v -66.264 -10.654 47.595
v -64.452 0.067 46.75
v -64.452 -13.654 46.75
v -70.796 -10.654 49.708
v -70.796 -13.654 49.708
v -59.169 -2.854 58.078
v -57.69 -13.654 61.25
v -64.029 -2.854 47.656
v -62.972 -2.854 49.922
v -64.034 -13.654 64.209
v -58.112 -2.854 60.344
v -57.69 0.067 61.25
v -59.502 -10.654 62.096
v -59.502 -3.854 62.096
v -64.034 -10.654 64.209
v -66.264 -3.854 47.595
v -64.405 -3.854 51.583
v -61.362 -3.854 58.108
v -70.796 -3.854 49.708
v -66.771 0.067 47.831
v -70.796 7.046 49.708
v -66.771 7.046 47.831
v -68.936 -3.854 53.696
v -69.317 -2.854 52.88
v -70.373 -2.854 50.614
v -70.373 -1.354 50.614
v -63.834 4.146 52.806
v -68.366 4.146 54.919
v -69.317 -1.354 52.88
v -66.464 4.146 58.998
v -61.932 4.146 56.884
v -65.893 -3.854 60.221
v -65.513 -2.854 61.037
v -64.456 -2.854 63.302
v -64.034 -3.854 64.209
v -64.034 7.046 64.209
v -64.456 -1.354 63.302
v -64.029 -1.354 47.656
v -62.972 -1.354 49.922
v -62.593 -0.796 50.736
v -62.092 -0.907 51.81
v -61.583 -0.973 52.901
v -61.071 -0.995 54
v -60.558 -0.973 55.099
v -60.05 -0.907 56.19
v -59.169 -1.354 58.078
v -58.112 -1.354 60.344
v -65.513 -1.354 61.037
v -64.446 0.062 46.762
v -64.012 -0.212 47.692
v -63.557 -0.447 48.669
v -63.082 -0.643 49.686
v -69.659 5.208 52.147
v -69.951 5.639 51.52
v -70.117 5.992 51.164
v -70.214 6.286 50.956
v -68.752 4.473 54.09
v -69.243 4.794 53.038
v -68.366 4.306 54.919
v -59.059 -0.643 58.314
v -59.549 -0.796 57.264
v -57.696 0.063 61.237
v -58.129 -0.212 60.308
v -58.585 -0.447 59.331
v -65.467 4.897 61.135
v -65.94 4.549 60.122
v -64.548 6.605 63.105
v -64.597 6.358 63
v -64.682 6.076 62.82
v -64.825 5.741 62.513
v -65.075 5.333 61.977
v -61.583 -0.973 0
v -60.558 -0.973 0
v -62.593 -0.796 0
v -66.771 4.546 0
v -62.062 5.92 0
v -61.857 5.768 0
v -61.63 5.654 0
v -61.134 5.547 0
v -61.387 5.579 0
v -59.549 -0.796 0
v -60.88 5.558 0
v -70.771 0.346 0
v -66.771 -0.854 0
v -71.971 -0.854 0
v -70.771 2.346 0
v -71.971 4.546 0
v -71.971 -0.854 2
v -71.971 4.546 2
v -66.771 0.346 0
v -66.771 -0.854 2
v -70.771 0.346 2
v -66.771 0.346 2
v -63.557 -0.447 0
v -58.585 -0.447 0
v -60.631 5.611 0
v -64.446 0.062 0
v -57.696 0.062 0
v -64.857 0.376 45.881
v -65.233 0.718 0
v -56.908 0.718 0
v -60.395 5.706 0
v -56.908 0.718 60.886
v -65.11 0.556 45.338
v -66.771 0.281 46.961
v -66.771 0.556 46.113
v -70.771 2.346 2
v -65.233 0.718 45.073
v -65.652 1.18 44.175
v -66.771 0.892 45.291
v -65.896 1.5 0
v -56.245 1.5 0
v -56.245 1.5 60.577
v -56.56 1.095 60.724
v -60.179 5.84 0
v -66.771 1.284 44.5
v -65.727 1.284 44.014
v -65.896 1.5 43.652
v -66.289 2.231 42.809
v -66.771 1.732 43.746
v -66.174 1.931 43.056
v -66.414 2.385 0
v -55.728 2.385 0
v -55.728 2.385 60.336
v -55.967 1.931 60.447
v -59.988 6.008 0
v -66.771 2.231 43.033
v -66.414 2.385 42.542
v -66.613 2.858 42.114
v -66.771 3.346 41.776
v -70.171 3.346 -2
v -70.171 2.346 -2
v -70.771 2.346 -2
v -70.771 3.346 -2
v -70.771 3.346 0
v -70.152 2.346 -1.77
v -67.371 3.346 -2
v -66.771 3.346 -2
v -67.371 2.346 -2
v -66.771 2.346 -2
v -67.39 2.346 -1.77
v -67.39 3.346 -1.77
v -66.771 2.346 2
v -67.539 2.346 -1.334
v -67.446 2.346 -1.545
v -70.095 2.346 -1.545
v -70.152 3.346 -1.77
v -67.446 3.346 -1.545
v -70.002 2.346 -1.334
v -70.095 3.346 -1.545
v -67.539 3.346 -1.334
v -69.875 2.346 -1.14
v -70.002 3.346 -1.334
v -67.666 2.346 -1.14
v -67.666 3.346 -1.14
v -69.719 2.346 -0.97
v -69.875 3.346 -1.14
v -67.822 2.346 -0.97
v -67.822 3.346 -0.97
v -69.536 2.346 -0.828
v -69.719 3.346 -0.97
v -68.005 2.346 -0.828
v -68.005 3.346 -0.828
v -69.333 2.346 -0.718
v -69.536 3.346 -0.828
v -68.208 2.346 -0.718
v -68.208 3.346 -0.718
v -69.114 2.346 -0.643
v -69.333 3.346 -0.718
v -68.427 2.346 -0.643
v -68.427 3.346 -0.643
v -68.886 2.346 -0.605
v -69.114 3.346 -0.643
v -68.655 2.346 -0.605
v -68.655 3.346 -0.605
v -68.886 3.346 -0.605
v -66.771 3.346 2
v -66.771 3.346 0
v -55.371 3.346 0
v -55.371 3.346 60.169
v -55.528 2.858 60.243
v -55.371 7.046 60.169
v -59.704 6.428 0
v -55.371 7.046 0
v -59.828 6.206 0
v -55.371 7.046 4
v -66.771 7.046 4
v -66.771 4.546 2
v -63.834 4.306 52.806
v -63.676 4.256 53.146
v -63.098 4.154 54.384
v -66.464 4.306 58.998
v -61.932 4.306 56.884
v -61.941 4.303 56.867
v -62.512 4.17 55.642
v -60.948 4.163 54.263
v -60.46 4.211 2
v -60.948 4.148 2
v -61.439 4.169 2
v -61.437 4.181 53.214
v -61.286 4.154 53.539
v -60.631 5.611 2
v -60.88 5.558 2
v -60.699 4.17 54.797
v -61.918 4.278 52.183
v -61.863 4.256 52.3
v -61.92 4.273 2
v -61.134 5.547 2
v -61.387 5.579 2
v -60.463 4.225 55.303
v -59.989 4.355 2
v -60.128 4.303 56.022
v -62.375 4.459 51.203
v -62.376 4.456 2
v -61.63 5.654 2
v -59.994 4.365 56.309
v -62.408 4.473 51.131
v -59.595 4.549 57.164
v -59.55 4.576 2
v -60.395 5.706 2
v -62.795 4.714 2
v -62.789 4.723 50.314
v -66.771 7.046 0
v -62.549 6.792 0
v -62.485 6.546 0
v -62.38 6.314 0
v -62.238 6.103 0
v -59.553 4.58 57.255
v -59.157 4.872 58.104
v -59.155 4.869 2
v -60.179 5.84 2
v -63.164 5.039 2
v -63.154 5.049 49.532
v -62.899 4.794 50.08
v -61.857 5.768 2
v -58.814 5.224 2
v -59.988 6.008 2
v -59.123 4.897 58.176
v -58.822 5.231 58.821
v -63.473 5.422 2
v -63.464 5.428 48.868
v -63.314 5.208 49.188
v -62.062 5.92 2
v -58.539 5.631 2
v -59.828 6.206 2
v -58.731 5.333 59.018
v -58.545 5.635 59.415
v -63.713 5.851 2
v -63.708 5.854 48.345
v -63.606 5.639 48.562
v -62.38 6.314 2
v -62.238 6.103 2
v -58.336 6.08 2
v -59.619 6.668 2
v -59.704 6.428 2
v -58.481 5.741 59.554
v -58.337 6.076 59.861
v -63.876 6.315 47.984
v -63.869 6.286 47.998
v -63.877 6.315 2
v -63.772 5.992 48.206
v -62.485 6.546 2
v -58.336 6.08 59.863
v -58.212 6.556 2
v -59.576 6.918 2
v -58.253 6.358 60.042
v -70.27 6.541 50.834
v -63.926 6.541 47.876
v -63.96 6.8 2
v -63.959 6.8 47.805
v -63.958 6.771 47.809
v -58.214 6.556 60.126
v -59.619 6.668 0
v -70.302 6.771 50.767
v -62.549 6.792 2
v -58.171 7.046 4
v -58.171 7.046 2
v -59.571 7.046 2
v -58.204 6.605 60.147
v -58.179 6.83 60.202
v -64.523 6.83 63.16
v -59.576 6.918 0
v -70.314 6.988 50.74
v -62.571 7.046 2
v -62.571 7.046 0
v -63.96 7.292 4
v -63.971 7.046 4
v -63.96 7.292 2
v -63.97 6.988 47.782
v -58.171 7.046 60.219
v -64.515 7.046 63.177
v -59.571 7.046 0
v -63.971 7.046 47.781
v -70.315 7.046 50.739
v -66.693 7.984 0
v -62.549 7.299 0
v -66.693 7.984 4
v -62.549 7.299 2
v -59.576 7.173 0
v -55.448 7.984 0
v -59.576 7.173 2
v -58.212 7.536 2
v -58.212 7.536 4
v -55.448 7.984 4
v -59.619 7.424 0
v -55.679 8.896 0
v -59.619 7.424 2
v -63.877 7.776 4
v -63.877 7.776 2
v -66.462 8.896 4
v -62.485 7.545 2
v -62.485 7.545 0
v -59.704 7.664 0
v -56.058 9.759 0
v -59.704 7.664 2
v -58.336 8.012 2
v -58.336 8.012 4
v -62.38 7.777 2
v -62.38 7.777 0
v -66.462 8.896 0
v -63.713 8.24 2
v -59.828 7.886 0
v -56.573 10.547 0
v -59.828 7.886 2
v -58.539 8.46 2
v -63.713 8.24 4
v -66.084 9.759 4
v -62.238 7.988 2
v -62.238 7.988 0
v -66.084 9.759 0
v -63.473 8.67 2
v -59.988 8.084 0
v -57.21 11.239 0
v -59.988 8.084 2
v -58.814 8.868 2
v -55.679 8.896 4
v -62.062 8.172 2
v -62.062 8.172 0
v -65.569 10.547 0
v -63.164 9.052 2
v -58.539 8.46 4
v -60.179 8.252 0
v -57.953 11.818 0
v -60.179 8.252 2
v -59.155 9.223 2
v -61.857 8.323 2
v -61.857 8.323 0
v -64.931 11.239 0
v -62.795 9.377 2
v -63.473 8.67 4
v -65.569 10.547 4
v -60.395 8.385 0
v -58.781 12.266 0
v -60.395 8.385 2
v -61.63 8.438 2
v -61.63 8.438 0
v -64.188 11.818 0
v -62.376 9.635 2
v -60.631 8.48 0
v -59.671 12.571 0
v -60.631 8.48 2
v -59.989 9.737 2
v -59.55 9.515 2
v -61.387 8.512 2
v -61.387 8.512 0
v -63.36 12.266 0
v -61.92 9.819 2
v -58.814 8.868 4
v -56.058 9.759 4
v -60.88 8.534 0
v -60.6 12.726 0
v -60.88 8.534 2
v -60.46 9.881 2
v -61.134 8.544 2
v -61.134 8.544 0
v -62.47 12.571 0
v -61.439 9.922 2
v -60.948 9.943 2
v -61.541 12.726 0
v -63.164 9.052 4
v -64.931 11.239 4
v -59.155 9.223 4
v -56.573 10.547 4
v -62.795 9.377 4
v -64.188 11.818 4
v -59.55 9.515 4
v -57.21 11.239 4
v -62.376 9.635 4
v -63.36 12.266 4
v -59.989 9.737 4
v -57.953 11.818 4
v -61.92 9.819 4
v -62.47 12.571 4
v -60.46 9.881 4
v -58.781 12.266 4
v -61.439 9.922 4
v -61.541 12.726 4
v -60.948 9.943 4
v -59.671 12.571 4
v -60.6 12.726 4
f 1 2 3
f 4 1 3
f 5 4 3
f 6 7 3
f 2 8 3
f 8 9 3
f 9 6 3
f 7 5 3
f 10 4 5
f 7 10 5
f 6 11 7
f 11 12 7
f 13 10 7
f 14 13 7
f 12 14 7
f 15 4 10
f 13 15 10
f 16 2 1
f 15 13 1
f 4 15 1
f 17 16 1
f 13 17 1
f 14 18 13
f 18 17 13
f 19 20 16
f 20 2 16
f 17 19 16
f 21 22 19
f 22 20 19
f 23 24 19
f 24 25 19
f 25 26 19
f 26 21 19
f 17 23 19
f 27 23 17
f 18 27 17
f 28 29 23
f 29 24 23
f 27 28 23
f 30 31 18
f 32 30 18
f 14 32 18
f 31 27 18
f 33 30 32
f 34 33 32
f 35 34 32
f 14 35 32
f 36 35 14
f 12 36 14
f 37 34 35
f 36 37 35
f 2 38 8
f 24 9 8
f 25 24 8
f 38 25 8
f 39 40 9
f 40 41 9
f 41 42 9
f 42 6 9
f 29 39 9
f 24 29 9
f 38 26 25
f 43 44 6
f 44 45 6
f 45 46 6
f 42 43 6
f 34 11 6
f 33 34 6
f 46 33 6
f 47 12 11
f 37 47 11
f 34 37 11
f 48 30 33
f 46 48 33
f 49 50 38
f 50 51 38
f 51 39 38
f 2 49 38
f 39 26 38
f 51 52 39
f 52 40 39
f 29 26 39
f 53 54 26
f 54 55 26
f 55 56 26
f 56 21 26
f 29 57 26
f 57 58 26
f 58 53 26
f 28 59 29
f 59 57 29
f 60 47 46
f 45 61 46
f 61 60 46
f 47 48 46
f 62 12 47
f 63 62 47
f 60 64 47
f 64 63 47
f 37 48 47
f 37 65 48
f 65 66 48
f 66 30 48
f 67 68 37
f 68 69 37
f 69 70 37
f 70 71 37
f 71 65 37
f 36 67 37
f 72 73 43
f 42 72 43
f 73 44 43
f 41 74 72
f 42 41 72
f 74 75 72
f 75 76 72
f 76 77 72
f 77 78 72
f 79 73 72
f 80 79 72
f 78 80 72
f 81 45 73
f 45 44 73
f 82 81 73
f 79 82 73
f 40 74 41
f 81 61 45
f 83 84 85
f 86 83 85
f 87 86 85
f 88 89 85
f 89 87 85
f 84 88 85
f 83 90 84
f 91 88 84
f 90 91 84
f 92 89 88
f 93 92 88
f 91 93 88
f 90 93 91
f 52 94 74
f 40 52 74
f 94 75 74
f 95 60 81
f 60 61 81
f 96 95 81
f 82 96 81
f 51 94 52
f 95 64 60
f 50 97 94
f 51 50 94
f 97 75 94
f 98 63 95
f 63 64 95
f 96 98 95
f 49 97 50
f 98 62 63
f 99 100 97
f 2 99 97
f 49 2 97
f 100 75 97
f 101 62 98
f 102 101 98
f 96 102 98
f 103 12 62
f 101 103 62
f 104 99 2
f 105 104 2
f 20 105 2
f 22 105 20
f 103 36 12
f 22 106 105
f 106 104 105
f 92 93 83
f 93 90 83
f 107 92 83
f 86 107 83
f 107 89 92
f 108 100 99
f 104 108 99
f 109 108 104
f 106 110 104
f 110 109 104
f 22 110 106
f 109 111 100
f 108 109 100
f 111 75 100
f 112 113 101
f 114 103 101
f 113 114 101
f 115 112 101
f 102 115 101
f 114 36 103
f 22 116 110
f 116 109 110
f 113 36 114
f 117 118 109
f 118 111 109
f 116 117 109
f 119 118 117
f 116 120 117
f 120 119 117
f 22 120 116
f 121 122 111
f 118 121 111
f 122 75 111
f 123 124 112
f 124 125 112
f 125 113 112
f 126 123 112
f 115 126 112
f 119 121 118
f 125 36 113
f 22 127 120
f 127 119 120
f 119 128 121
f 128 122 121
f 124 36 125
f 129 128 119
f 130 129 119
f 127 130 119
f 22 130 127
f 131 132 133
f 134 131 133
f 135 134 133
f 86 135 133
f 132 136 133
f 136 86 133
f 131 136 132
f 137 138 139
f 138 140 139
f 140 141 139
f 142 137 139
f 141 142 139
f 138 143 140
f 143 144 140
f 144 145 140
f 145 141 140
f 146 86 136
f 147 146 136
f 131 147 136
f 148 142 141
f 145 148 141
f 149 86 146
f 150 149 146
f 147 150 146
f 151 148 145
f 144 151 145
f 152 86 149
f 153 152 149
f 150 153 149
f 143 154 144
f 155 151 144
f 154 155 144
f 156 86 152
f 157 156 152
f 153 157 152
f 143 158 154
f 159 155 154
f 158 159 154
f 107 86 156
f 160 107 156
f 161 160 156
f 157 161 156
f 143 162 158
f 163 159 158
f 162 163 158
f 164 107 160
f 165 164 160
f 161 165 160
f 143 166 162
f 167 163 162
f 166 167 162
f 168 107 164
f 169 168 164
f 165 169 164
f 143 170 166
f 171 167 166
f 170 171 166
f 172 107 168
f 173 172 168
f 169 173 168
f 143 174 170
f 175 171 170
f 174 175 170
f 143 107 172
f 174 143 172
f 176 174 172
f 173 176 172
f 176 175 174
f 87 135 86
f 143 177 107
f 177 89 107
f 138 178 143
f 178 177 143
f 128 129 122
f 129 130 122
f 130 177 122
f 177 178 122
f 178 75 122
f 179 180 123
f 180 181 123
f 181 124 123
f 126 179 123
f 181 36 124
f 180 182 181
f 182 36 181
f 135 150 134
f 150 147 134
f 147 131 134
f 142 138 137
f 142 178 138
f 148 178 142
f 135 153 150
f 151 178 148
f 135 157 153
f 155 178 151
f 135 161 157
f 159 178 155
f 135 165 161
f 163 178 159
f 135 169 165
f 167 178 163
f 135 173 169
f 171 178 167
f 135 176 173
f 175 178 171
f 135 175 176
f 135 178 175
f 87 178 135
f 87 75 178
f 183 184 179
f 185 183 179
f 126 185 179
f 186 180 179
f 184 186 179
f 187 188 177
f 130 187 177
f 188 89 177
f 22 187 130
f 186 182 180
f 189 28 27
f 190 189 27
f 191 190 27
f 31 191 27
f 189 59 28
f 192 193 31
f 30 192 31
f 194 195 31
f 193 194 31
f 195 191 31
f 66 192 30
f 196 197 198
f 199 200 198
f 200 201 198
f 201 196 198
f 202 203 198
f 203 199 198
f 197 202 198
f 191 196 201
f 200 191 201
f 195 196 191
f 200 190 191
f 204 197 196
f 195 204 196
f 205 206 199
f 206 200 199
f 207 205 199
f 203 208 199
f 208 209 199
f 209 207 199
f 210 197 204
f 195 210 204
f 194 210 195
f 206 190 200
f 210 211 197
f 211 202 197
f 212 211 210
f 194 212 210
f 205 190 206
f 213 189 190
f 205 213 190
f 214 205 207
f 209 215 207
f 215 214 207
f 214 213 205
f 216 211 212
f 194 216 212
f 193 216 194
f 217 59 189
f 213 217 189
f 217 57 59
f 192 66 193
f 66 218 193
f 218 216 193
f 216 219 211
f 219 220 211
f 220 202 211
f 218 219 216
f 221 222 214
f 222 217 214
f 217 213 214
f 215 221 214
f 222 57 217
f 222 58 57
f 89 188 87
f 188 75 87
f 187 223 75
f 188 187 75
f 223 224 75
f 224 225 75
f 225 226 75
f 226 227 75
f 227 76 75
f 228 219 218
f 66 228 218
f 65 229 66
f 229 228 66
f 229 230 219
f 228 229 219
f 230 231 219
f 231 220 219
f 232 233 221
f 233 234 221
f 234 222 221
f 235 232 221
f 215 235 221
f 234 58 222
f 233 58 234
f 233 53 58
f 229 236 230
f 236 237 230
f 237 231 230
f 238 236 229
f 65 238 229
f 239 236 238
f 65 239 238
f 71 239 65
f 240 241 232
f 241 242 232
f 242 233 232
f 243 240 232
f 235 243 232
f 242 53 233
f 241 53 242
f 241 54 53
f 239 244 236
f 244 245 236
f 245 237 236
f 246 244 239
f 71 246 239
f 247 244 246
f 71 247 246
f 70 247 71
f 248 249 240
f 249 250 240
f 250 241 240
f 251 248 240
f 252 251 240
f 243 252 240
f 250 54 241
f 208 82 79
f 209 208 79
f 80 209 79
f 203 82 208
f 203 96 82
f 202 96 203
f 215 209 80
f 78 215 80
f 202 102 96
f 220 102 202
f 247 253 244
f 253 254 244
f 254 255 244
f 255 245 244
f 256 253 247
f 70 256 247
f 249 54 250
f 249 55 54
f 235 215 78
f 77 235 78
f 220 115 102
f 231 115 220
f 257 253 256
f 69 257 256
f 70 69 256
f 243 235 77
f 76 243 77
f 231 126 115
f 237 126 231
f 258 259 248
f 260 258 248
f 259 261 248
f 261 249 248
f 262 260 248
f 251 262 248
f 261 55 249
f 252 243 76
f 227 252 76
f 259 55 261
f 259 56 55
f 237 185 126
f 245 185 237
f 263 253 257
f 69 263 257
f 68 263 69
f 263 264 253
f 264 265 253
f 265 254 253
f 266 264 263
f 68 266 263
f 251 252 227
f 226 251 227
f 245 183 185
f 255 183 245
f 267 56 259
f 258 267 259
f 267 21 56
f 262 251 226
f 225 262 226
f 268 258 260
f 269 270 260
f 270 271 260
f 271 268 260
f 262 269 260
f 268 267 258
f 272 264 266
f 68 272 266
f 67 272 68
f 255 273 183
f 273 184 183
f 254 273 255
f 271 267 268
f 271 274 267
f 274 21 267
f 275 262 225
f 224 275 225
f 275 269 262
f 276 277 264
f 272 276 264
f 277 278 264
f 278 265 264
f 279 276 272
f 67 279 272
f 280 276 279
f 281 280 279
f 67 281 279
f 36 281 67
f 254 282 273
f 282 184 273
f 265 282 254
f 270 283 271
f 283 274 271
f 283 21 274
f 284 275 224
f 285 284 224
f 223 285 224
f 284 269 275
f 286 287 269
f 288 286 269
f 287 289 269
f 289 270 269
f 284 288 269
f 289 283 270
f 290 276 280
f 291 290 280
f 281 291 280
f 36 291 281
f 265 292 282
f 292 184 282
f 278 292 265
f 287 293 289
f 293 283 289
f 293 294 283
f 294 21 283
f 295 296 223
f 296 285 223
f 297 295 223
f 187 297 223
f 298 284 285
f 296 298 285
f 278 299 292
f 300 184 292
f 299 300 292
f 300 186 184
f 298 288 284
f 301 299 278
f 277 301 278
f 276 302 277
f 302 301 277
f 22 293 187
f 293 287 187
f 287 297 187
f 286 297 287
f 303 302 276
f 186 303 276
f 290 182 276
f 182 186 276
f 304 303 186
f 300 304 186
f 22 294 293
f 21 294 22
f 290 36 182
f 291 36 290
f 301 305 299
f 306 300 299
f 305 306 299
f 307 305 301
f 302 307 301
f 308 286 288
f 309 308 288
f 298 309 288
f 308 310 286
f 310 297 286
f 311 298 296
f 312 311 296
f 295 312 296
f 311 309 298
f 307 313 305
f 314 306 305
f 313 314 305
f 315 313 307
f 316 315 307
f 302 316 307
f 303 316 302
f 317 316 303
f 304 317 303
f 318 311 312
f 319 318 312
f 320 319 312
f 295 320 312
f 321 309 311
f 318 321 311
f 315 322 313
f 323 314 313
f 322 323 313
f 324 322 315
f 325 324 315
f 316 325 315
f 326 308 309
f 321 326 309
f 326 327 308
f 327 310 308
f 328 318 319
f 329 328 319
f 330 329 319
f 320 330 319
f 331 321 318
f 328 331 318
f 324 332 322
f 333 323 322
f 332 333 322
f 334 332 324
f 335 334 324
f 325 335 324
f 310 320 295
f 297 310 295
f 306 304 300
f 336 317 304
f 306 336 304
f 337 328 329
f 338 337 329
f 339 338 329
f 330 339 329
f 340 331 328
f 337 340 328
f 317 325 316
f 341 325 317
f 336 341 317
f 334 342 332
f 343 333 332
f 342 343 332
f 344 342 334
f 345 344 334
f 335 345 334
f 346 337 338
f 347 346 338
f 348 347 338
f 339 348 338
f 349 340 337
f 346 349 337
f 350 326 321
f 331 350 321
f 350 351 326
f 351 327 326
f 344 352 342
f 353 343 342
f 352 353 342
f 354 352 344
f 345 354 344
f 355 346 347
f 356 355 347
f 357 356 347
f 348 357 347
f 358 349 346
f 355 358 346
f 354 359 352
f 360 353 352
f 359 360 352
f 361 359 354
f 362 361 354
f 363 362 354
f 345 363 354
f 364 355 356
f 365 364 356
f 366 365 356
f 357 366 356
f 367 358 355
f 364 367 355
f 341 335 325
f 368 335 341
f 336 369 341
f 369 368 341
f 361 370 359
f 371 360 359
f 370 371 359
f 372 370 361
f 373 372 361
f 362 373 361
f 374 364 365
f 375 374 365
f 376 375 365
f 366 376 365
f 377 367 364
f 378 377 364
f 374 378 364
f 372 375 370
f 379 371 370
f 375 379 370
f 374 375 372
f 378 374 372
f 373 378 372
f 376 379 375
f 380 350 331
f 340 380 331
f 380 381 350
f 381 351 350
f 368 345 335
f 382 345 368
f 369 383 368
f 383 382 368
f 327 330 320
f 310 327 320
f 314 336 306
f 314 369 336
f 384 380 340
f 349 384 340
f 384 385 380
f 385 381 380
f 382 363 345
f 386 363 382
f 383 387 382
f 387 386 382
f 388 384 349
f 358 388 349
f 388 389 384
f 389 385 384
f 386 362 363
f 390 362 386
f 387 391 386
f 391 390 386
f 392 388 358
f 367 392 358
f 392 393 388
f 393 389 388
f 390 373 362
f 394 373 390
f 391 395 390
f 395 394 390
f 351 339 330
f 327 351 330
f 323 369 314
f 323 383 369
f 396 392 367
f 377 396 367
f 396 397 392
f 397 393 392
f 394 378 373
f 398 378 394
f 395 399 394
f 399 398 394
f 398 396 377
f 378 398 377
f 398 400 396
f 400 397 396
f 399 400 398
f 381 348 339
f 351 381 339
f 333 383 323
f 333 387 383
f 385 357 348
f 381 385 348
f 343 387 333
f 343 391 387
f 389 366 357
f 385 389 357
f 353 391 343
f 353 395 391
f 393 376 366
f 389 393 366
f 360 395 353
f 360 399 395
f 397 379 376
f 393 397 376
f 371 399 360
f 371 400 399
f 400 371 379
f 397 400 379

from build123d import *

# Parameters (mm, degrees)
CROQUIS1_R                = 1.5
SALIENTE_EXTRUIR1_DEPTH   = 4
CROQUIS2_R                = 2.9
CORTAR_EXTRUIR1_DEPTH     = 2
SALIENTE_EXTRUIR2_DEPTH   = 65
CORTAR_EXTRUIR2_OUTLINE_W = 7.281077338
CORTAR_EXTRUIR2_OUTLINE_H = 8.780929931
CORTAR_EXTRUIR2_DEPTH     = 8.6
CORTAR_EXTRUIR2_TAPER     = -65
CROQUIS5_W                = 41.142355125
CROQUIS5_H                = 35.377069929
CORTAR_EXTRUIR3_DEPTH     = 10
SALIENTE_EXTRUIR3_DEPTH   = 7
CORTAR_EXTRUIR4_DEPTH     = 5
CORTAR_EXTRUIR5_START     = -7
CROQUIS8_W                = 2.5
CROQUIS8_H                = 1.5
CORTAR_EXTRUIR5_DEPTH     = 7
CORTAR_EXTRUIR6_DEPTH     = 10
SALIENTE_EXTRUIR4_DEPTH   = 3.7
SALIENTE_EXTRUIR5_DEPTH   = 2.558793
CORTAR_EXTRUIR7_DEPTH     = 10
SALIENTE_EXTRUIR6_DEPTH   = 2
CROQUIS15_W               = 4
CROQUIS15_H               = 4
SALIENTE_EXTRUIR7_DEPTH   = 1
CROQUIS16_R               = 1.4
CORTAR_EXTRUIR8_DEPTH     = 1


# Read off the part's stored shape, not the designer's step: Cortar-Extruir2
with BuildPart() as part:
    # Croquis1 → Saliente-Extruir1 (new body)
    with BuildSketch(Plane.XY):
        with BuildLine():
            Line((-55.370631899, 7.045687646), (-55.370631899, 3.345687646))
            ThreePointArc((-55.370631899, 3.345687646), (-61.070631899, -0.995420457), (-66.770631899, 3.345687646))
            Line((-66.770631899, 3.345687646), (-66.770631899, 7.045687646))
            ThreePointArc((-66.770631899, 7.045687646), (-61.070631899, 12.745687646), (-55.370631899, 7.045687646))
        make_face()
        with Locations((-61.070631899, 7.045687646)):
            Circle(CROQUIS1_R, mode=Mode.SUBTRACT)
    extrude(amount=SALIENTE_EXTRUIR1_DEPTH)

    # Croquis2 → Cortar-Extruir1 (cut)
    with BuildSketch(Plane.XY.offset(4)):
        with Locations((-61.070631899, 7.045687646)):
            Circle(CROQUIS2_R)
    extrude(amount=-CORTAR_EXTRUIR1_DEPTH, mode=Mode.SUBTRACT)

    # Croquis3 → Saliente-Extruir2 (add)
    with BuildSketch(Plane.XY.offset(4)):
        with BuildLine():
            Line((-63.970631899, 7.045687646), (-66.770631899, 7.045687646))
            Line((-66.770631899, 7.045687646), (-66.770631899, 3.345687646))
            ThreePointArc((-66.770631899, 3.345687646), (-61.070631899, -0.995420457), (-55.370631899, 3.345687646))
            Line((-55.370631899, 3.345687646), (-55.370631899, 7.045687646))
            Line((-55.370631899, 7.045687646), (-58.170631899, 7.045687646))
            ThreePointArc((-58.170631899, 7.045687646), (-61.070631899, 4.145687646), (-63.970631899, 7.045687646))
        make_face()
    extrude(amount=SALIENTE_EXTRUIR2_DEPTH)

    # Cortar-Extruir2 outline → Cortar-Extruir2 (cut)
    with BuildSketch(Plane.YZ.offset(-58.170631899)):
        with Locations((3.405148977, 64.609535034)):
            Rectangle(CORTAR_EXTRUIR2_OUTLINE_W, CORTAR_EXTRUIR2_OUTLINE_H)
    extrude(amount=-CORTAR_EXTRUIR2_DEPTH, taper=CORTAR_EXTRUIR2_TAPER, mode=Mode.SUBTRACT)

    # Croquis5 → Cortar-Extruir3 (cut)
    with BuildSketch(Plane(origin=(-70.846238664, 0, 33.03614364), x_dir=(0.422618261740701, 0, 0.9063077870366493), z_dir=(-0.9063077870366493, 1.4037441023509523e-15, 0.422618261740701))):
        with Locations((23.845262034, -3.548141358)):
            Rectangle(CROQUIS5_W, CROQUIS5_H)
    extrude(amount=CORTAR_EXTRUIR3_DEPTH, mode=Mode.SUBTRACT)

    # Croquis6 → Saliente-Extruir3 (add)
    with BuildSketch(Plane(origin=(-70.846238664, 0, 33.03614364), x_dir=(0.422618261740701, 0, 0.9063077870366493), z_dir=(-0.9063077870366493, 1.4037441023509523e-15, 0.422618261740701))):
        with BuildLine():
            Line((31.131056203, 7.045687646), (29.993040795, 7.045687646))
            add(Edge.make_bspline(
                [(16.269071612, 7.045687646), (16.269071612, 4.145687646), (23.131056203, 4.145687646), (29.993040795, 4.145687646), (29.993040795, 7.045687646)],
                knots=[3.141592654, 3.141592654, 3.141592654, 4.71238898, 4.71238898, 6.283185307, 6.283185307, 6.283185307], degree=2, weights=[1, 0.707106781, 1, 0.707106781, 1]))
            Line((16.269071612, 7.045687646), (15.131056203, 7.045687646))
            Line((15.131056203, 7.045687646), (15.131056203, -13.654312354))
            Line((15.131056203, -13.654312354), (31.131056203, -13.654312354))
            Line((31.131056203, -13.654312354), (31.131056203, 7.045687646))
        make_face()
    extrude(amount=SALIENTE_EXTRUIR3_DEPTH)

    # Croquis7 → Cortar-Extruir4 (cut)
    with BuildSketch(Plane(origin=(-77.190393173, 0, 35.994471473), x_dir=(0.42261826174070094, 0, 0.9063077870366492), z_dir=(-0.9063077870366493, 1.403744102350952e-15, 0.422618261740701))):
        with BuildLine():
            Line((25.381056203, 4.145687646), (26.731056203, -3.854312354))
            Line((26.731056203, -3.854312354), (31.131056203, -3.854312354))
            Line((31.131056203, -3.854312354), (31.131056203, -10.654312354))
            Line((31.131056203, -10.654312354), (15.131056203, -10.654312354))
            Line((15.131056203, -10.654312354), (15.131056203, -3.854312354))
            Line((15.131056203, -3.854312354), (19.531056203, -3.854312354))
            Line((19.531056203, -3.854312354), (20.881056203, 4.145687646))
            Line((20.881056203, 4.145687646), (20.881056203, 4.306015013))
            add(Edge.make_bspline(
                [(20.881056203, 4.306015013), (23.131056203, 3.97597782), (25.381056203, 4.306015013)],
                knots=[4.378316067, 4.378316067, 4.378316067, 5.046461894, 5.046461894, 5.046461894], degree=2, weights=[1, 0.944714701, 1]))
            Line((25.381056203, 4.306015013), (25.381056203, 4.145687646))
        make_face()
    extrude(amount=-CORTAR_EXTRUIR4_DEPTH, mode=Mode.SUBTRACT)

    # Croquis8 → Cortar-Extruir5 (cut)
    with BuildSketch(Plane(origin=(-77.190393173, 0, 35.994471473), x_dir=(0.42261826174070094, 0, 0.9063077870366492), z_dir=(-0.9063077870366493, 1.403744102350952e-15, 0.422618261740701)).offset(CORTAR_EXTRUIR5_START)):
        with Locations((17.381056203, -2.104312354)):
            Rectangle(CROQUIS8_W, CROQUIS8_H)
        with Locations((28.881056203, -2.104312354)):
            Rectangle(CROQUIS8_W, CROQUIS8_H)
    extrude(amount=CORTAR_EXTRUIR5_DEPTH, mode=Mode.SUBTRACT)

    # Croquis9 → Cortar-Extruir6 (cut)
    with BuildSketch(Plane(origin=(0, 7.045687646, 0), x_dir=(1, 0, 0), z_dir=(0, 1, 0))):
        Polygon((-57.689685805, -61.250462296), (-55.370631899, -60.1690697), (-55.370631899, -66.223689447), align=None)
    extrude(amount=-CORTAR_EXTRUIR6_DEPTH, mode=Mode.SUBTRACT)

    # Croquis10 → Saliente-Extruir4 (add)
    with BuildSketch(Plane(origin=(0, 7.045687646, 0), x_dir=(1, 0, 0), z_dir=(0, 1, 0))):
        Polygon((-66.770631899, -41.776310553), (-66.770631899, -47.8309303), (-64.451577993, -46.749537704), align=None)
    extrude(amount=-SALIENTE_EXTRUIR4_DEPTH)

    # Croquis12 → Saliente-Extruir5 (add)
    with BuildSketch(Plane(origin=(-70.846238664, 0, 33.03614364), x_dir=(0.422618261740701, 0, 0.9063077870366493), z_dir=(-0.9063077870366493, 1.4037441023509523e-15, 0.422618261740701))):
        with BuildLine():
            Line((15.131056203, 3.345687646), (15.131056203, 0.066589345))
            ThreePointArc((15.131056203, 0.066589345), (12.129139109, 1.273987016), (9.64370718, 3.345687646))
            Line((9.64370718, 3.345687646), (15.131056203, 3.345687646))
        make_face()
    extrude(amount=SALIENTE_EXTRUIR5_DEPTH)

    # Croquis13 → Cortar-Extruir7 (cut)
    with BuildSketch(Plane(origin=(0, 3.345687646, 0), x_dir=(1, 0, 0), z_dir=(0, 1, 0))):
        Polygon((-66.770631899, -47.8309303), (-66.770631899, -41.776310553), (-69.089685805, -42.857703149), align=None)
    extrude(amount=-CORTAR_EXTRUIR7_DEPTH, mode=Mode.SUBTRACT)

    # Croquis14 → Saliente-Extruir6 (add)
    with BuildSketch(Plane(origin=(0, 0, 0), x_dir=(-1, 0, 0), z_dir=(0, 0, -1))):
        Polygon((66.770631899, 3.345687646), (70.770631899, 3.345687646), (70.770631899, 0.345687646), (66.770631899, 0.345687646), (66.770631899, -0.854312354), (71.970631899, -0.854312354), (71.970631899, 4.545687646), (66.770631899, 4.545687646), align=None)
    extrude(amount=-SALIENTE_EXTRUIR6_DEPTH)

    # Croquis15 → Saliente-Extruir7 (add)
    with BuildSketch(Plane.XZ.offset(-3.345687646)):
        with Locations((-68.770631899, 0)):
            Rectangle(CROQUIS15_W, CROQUIS15_H)
    extrude(amount=SALIENTE_EXTRUIR7_DEPTH)

    # Croquis16 → Cortar-Extruir8 (cut)
    with BuildSketch(Plane.XZ.offset(-2.345687646)):
        with Locations((-68.770631899, -2)):
            Circle(CROQUIS16_R)
    extrude(amount=-CORTAR_EXTRUIR8_DEPTH, mode=Mode.SUBTRACT)


solid = part.part
